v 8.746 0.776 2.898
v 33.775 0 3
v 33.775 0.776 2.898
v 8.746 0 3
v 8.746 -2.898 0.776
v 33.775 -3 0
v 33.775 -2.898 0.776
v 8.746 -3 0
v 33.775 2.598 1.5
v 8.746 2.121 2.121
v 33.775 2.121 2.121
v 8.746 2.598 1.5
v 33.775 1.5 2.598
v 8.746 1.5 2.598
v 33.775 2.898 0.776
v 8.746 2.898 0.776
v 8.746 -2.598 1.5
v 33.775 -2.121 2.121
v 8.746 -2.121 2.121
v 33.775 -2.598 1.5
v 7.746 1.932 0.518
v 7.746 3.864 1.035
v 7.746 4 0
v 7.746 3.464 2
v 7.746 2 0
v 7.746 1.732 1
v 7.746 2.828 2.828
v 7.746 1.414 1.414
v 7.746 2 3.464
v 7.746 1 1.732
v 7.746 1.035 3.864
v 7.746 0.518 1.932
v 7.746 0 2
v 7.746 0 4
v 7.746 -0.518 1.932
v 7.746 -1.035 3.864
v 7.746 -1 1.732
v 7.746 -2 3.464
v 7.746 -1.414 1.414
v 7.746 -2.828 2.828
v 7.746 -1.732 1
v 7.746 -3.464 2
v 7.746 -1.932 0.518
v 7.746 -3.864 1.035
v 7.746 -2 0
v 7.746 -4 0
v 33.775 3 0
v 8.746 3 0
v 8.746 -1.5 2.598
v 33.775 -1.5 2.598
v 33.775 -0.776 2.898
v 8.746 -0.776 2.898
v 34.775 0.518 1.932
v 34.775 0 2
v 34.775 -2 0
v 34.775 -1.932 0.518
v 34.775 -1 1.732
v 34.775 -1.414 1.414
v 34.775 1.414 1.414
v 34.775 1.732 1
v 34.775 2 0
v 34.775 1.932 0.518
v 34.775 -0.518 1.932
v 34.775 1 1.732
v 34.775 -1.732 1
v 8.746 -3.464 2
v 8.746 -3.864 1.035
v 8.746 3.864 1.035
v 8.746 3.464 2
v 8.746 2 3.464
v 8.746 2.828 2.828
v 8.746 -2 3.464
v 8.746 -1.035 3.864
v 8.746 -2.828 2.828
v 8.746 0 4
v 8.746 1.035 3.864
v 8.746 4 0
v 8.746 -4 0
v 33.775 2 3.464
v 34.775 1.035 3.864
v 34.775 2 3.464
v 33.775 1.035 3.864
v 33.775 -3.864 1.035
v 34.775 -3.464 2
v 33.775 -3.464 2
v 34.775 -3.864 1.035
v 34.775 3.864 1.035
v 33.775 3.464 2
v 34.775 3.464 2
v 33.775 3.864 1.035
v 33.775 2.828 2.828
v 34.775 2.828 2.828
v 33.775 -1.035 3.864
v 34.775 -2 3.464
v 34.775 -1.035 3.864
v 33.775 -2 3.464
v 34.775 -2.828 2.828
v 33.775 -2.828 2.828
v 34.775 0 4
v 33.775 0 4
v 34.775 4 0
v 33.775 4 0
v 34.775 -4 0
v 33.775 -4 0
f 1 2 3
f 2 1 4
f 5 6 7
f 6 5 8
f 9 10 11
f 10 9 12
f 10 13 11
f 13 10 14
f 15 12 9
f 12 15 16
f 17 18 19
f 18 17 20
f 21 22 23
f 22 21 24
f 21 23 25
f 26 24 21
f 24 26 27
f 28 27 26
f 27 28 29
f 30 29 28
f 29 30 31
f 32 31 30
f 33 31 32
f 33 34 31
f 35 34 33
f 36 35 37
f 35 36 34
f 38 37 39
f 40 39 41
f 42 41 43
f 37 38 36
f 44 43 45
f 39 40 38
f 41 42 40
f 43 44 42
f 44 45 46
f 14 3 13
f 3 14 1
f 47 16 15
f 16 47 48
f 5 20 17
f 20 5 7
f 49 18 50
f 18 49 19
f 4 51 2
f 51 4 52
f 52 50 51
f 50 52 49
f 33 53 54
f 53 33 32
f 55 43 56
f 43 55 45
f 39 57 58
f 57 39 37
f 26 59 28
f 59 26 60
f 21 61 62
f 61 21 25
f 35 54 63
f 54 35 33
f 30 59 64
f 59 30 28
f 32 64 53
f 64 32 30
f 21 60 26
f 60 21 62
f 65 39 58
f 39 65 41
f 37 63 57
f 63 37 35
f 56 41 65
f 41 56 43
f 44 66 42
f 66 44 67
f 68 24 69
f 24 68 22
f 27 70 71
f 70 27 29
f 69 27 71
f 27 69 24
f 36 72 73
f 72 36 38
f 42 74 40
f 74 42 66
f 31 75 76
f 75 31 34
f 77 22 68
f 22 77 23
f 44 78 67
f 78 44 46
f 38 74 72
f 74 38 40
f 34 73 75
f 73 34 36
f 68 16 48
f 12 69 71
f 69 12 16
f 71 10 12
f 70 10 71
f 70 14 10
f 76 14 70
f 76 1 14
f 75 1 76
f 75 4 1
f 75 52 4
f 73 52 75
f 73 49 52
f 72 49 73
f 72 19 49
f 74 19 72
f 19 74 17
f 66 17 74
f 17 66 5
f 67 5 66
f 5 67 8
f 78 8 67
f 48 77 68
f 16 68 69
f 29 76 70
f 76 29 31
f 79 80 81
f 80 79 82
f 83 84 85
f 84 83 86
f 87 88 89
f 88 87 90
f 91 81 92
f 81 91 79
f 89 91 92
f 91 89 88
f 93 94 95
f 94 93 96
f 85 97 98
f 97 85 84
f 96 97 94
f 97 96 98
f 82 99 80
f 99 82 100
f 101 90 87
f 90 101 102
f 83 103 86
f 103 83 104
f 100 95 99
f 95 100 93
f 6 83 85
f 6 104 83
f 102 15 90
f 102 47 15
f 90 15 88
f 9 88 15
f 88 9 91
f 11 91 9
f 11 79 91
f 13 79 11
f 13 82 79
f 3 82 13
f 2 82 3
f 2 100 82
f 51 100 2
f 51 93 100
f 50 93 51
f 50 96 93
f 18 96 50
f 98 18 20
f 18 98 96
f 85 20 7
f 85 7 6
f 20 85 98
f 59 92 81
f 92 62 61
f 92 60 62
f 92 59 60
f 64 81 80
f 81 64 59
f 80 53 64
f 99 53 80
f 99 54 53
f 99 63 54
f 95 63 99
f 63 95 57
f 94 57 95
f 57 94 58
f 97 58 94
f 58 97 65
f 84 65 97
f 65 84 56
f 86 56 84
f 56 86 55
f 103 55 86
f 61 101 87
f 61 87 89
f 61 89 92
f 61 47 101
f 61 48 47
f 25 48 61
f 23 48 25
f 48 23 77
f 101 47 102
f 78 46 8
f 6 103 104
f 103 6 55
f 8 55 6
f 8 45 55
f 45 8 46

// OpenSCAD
// file: ../build_environments.scad
// build_environments.scad: modules to build level sections
//

module pool(diameter=10.0, wall_height=2.0, step_width=3.0, connections=[])
{
    difference() {
        union() {
        difference() {
            cylinder(h=0.5,r1=diameter+step_width,r2=diameter+step_width,$fn=48);
            translate([0,0,-0.1])
                cylinder(h=0.7,r1=diameter,r2=diameter,$fn=48);
        }
        difference() {
            cylinder(h=wall_height,r1=diameter+step_width+1.0,r2=diameter+step_width+1.0,$fn=48);
            translate([0,0,-0.1])
                cylinder(h=wall_height+0.2,r1=diameter+step_width,r2=diameter+step_width,$fn=48);
        }
        }
    
        for (c = connections)
        {
            rotate([0,90,0]) {
                angle = atan2(c[1],c[0]);
                rotate([-angle,0,0]) {
                    cylinder(h=diameter+5.0,r1=c[2],r2=c[2],$fn=48);
                }
            }
        }
    }
}

module straight(length=10.0, width=2.0, dy1=0.0, dy2=0.0, dz=0.0)
{
    dims = [0, 0, 0, 0, 0, (dz/length)];
    matrix = [
        [ 1, dims[0], dims[1], 0 ],
        [ dims[2], 1, dims[4], 0 ],
        [ dims[5], dims[3], 1, 0 ],
        [ 0, 0, 0, 1 ]
    ];
    multmatrix(matrix)
    difference() {
        translate([dy1,0,0])
        union() {
            rotate([0,90,0]) {
                difference() {
                    cylinder(h=(length-dy1-dy2),r1=width+1.0,r2=width+1.0,$fn=24);
                    translate([0,0,-0.1])
                        cylinder(h=(length-dy1-dy2+0.2),r1=width,r2=width,$fn=24);
                }
                difference() {
                    cylinder(h=1.0,r1=width+2.0,r2=width+2.0,$fn=24);
                    translate([0,0,-0.1])
                        cylinder(h=1.2,r1=width,r2=width,$fn=24);
                }
                translate([0,0,(length-dy1-dy2)-1.0]) {
                    difference() {
                        cylinder(h=1.0,r1=width+2.0,r2=width+2.0,$fn=24);
                        translate([0,0,-0.1])
                            cylinder(h=1.2,r1=width,r2=width,$fn=24);
                    }
                }
            }
        }
        translate([0,0,-(2*width+4.0)/2])
            cube([3*length,3*length,2*width+4.0],center=true);
    }
}

module curve(p0=[0,0], center=[0,0], dir=1, angle=0.0, width=2.0)
{
    radius = sqrt((p0[0]-center[0])*(p0[0]-center[0]) + (p0[1]-center[1])*(p0[1]-center[1]));
    if (dir == 0) {
        difference() {
            rotate([0,0,-90])
            difference() {
                rotate_extrude(angle = angle, convexity = 10, $fn=32)
                    translate([radius, 0, 0])
                        circle(r = width+1.0,$fn=24);
                rotate([0,0,-1.0])
                    rotate_extrude(angle = angle+2.0, convexity = 10, $fn=32)
                        translate([radius, 0, 0])
                            circle(r = width,$fn=24);
            }
            translate([0,0,-(2*width+4.0)/2])
                cube([5*radius,5*radius,2*width+4.0],center=true);
        }
    }
    else {
        difference() {
            rotate([0,0,90])
            difference() {
                rotate_extrude(angle = -angle, convexity = 10, $fn=32)
                    translate([radius, 0, 0])
                        circle(r = width+1.0,$fn=24);
                rotate([0,0,1.0])
                    rotate_extrude(angle = -angle-2.0, convexity = 10, $fn=32)
                        translate([radius, 0, 0])
                            circle(r = width,$fn=24);
            }
            translate([0,0,-(2*width+4.0)/2])
                cube([5*radius,5*radius,2*width+4.0],center=true);
        }
    }

}

// test pool
//pool(diameter=12.0000, wall_height=3.0000, step_width=3.0000, connections=[[0.0000,-26.0000,2.0000], [23.6074,0.0000,2.0000]]);

// test straight, slope
//straight(length=26.0000, width=2.0000, dy1=11.8322, dy2=6.7082, dz=0.0000);
//straight(length=29.1549, width=12.0000, dy1=0.0000, dy2=0.0000, dz=-15.0000);

// test curve
//curve(p0=[23.6074, 0.0000], center=[23.6074, 5.0000], dir=0, angle=60.1011, width=2.0000);
//curve(p0=[33.6426, 12.4219], center=[37.9771, 9.9295], dir=1, angle=120.4627, width=2.0000);
// main file
use <../build_environments.scad>;
straight(length=42.5206, width=2.0000, dy1=7.7460, dy2=7.7460, dz=0.0000);
